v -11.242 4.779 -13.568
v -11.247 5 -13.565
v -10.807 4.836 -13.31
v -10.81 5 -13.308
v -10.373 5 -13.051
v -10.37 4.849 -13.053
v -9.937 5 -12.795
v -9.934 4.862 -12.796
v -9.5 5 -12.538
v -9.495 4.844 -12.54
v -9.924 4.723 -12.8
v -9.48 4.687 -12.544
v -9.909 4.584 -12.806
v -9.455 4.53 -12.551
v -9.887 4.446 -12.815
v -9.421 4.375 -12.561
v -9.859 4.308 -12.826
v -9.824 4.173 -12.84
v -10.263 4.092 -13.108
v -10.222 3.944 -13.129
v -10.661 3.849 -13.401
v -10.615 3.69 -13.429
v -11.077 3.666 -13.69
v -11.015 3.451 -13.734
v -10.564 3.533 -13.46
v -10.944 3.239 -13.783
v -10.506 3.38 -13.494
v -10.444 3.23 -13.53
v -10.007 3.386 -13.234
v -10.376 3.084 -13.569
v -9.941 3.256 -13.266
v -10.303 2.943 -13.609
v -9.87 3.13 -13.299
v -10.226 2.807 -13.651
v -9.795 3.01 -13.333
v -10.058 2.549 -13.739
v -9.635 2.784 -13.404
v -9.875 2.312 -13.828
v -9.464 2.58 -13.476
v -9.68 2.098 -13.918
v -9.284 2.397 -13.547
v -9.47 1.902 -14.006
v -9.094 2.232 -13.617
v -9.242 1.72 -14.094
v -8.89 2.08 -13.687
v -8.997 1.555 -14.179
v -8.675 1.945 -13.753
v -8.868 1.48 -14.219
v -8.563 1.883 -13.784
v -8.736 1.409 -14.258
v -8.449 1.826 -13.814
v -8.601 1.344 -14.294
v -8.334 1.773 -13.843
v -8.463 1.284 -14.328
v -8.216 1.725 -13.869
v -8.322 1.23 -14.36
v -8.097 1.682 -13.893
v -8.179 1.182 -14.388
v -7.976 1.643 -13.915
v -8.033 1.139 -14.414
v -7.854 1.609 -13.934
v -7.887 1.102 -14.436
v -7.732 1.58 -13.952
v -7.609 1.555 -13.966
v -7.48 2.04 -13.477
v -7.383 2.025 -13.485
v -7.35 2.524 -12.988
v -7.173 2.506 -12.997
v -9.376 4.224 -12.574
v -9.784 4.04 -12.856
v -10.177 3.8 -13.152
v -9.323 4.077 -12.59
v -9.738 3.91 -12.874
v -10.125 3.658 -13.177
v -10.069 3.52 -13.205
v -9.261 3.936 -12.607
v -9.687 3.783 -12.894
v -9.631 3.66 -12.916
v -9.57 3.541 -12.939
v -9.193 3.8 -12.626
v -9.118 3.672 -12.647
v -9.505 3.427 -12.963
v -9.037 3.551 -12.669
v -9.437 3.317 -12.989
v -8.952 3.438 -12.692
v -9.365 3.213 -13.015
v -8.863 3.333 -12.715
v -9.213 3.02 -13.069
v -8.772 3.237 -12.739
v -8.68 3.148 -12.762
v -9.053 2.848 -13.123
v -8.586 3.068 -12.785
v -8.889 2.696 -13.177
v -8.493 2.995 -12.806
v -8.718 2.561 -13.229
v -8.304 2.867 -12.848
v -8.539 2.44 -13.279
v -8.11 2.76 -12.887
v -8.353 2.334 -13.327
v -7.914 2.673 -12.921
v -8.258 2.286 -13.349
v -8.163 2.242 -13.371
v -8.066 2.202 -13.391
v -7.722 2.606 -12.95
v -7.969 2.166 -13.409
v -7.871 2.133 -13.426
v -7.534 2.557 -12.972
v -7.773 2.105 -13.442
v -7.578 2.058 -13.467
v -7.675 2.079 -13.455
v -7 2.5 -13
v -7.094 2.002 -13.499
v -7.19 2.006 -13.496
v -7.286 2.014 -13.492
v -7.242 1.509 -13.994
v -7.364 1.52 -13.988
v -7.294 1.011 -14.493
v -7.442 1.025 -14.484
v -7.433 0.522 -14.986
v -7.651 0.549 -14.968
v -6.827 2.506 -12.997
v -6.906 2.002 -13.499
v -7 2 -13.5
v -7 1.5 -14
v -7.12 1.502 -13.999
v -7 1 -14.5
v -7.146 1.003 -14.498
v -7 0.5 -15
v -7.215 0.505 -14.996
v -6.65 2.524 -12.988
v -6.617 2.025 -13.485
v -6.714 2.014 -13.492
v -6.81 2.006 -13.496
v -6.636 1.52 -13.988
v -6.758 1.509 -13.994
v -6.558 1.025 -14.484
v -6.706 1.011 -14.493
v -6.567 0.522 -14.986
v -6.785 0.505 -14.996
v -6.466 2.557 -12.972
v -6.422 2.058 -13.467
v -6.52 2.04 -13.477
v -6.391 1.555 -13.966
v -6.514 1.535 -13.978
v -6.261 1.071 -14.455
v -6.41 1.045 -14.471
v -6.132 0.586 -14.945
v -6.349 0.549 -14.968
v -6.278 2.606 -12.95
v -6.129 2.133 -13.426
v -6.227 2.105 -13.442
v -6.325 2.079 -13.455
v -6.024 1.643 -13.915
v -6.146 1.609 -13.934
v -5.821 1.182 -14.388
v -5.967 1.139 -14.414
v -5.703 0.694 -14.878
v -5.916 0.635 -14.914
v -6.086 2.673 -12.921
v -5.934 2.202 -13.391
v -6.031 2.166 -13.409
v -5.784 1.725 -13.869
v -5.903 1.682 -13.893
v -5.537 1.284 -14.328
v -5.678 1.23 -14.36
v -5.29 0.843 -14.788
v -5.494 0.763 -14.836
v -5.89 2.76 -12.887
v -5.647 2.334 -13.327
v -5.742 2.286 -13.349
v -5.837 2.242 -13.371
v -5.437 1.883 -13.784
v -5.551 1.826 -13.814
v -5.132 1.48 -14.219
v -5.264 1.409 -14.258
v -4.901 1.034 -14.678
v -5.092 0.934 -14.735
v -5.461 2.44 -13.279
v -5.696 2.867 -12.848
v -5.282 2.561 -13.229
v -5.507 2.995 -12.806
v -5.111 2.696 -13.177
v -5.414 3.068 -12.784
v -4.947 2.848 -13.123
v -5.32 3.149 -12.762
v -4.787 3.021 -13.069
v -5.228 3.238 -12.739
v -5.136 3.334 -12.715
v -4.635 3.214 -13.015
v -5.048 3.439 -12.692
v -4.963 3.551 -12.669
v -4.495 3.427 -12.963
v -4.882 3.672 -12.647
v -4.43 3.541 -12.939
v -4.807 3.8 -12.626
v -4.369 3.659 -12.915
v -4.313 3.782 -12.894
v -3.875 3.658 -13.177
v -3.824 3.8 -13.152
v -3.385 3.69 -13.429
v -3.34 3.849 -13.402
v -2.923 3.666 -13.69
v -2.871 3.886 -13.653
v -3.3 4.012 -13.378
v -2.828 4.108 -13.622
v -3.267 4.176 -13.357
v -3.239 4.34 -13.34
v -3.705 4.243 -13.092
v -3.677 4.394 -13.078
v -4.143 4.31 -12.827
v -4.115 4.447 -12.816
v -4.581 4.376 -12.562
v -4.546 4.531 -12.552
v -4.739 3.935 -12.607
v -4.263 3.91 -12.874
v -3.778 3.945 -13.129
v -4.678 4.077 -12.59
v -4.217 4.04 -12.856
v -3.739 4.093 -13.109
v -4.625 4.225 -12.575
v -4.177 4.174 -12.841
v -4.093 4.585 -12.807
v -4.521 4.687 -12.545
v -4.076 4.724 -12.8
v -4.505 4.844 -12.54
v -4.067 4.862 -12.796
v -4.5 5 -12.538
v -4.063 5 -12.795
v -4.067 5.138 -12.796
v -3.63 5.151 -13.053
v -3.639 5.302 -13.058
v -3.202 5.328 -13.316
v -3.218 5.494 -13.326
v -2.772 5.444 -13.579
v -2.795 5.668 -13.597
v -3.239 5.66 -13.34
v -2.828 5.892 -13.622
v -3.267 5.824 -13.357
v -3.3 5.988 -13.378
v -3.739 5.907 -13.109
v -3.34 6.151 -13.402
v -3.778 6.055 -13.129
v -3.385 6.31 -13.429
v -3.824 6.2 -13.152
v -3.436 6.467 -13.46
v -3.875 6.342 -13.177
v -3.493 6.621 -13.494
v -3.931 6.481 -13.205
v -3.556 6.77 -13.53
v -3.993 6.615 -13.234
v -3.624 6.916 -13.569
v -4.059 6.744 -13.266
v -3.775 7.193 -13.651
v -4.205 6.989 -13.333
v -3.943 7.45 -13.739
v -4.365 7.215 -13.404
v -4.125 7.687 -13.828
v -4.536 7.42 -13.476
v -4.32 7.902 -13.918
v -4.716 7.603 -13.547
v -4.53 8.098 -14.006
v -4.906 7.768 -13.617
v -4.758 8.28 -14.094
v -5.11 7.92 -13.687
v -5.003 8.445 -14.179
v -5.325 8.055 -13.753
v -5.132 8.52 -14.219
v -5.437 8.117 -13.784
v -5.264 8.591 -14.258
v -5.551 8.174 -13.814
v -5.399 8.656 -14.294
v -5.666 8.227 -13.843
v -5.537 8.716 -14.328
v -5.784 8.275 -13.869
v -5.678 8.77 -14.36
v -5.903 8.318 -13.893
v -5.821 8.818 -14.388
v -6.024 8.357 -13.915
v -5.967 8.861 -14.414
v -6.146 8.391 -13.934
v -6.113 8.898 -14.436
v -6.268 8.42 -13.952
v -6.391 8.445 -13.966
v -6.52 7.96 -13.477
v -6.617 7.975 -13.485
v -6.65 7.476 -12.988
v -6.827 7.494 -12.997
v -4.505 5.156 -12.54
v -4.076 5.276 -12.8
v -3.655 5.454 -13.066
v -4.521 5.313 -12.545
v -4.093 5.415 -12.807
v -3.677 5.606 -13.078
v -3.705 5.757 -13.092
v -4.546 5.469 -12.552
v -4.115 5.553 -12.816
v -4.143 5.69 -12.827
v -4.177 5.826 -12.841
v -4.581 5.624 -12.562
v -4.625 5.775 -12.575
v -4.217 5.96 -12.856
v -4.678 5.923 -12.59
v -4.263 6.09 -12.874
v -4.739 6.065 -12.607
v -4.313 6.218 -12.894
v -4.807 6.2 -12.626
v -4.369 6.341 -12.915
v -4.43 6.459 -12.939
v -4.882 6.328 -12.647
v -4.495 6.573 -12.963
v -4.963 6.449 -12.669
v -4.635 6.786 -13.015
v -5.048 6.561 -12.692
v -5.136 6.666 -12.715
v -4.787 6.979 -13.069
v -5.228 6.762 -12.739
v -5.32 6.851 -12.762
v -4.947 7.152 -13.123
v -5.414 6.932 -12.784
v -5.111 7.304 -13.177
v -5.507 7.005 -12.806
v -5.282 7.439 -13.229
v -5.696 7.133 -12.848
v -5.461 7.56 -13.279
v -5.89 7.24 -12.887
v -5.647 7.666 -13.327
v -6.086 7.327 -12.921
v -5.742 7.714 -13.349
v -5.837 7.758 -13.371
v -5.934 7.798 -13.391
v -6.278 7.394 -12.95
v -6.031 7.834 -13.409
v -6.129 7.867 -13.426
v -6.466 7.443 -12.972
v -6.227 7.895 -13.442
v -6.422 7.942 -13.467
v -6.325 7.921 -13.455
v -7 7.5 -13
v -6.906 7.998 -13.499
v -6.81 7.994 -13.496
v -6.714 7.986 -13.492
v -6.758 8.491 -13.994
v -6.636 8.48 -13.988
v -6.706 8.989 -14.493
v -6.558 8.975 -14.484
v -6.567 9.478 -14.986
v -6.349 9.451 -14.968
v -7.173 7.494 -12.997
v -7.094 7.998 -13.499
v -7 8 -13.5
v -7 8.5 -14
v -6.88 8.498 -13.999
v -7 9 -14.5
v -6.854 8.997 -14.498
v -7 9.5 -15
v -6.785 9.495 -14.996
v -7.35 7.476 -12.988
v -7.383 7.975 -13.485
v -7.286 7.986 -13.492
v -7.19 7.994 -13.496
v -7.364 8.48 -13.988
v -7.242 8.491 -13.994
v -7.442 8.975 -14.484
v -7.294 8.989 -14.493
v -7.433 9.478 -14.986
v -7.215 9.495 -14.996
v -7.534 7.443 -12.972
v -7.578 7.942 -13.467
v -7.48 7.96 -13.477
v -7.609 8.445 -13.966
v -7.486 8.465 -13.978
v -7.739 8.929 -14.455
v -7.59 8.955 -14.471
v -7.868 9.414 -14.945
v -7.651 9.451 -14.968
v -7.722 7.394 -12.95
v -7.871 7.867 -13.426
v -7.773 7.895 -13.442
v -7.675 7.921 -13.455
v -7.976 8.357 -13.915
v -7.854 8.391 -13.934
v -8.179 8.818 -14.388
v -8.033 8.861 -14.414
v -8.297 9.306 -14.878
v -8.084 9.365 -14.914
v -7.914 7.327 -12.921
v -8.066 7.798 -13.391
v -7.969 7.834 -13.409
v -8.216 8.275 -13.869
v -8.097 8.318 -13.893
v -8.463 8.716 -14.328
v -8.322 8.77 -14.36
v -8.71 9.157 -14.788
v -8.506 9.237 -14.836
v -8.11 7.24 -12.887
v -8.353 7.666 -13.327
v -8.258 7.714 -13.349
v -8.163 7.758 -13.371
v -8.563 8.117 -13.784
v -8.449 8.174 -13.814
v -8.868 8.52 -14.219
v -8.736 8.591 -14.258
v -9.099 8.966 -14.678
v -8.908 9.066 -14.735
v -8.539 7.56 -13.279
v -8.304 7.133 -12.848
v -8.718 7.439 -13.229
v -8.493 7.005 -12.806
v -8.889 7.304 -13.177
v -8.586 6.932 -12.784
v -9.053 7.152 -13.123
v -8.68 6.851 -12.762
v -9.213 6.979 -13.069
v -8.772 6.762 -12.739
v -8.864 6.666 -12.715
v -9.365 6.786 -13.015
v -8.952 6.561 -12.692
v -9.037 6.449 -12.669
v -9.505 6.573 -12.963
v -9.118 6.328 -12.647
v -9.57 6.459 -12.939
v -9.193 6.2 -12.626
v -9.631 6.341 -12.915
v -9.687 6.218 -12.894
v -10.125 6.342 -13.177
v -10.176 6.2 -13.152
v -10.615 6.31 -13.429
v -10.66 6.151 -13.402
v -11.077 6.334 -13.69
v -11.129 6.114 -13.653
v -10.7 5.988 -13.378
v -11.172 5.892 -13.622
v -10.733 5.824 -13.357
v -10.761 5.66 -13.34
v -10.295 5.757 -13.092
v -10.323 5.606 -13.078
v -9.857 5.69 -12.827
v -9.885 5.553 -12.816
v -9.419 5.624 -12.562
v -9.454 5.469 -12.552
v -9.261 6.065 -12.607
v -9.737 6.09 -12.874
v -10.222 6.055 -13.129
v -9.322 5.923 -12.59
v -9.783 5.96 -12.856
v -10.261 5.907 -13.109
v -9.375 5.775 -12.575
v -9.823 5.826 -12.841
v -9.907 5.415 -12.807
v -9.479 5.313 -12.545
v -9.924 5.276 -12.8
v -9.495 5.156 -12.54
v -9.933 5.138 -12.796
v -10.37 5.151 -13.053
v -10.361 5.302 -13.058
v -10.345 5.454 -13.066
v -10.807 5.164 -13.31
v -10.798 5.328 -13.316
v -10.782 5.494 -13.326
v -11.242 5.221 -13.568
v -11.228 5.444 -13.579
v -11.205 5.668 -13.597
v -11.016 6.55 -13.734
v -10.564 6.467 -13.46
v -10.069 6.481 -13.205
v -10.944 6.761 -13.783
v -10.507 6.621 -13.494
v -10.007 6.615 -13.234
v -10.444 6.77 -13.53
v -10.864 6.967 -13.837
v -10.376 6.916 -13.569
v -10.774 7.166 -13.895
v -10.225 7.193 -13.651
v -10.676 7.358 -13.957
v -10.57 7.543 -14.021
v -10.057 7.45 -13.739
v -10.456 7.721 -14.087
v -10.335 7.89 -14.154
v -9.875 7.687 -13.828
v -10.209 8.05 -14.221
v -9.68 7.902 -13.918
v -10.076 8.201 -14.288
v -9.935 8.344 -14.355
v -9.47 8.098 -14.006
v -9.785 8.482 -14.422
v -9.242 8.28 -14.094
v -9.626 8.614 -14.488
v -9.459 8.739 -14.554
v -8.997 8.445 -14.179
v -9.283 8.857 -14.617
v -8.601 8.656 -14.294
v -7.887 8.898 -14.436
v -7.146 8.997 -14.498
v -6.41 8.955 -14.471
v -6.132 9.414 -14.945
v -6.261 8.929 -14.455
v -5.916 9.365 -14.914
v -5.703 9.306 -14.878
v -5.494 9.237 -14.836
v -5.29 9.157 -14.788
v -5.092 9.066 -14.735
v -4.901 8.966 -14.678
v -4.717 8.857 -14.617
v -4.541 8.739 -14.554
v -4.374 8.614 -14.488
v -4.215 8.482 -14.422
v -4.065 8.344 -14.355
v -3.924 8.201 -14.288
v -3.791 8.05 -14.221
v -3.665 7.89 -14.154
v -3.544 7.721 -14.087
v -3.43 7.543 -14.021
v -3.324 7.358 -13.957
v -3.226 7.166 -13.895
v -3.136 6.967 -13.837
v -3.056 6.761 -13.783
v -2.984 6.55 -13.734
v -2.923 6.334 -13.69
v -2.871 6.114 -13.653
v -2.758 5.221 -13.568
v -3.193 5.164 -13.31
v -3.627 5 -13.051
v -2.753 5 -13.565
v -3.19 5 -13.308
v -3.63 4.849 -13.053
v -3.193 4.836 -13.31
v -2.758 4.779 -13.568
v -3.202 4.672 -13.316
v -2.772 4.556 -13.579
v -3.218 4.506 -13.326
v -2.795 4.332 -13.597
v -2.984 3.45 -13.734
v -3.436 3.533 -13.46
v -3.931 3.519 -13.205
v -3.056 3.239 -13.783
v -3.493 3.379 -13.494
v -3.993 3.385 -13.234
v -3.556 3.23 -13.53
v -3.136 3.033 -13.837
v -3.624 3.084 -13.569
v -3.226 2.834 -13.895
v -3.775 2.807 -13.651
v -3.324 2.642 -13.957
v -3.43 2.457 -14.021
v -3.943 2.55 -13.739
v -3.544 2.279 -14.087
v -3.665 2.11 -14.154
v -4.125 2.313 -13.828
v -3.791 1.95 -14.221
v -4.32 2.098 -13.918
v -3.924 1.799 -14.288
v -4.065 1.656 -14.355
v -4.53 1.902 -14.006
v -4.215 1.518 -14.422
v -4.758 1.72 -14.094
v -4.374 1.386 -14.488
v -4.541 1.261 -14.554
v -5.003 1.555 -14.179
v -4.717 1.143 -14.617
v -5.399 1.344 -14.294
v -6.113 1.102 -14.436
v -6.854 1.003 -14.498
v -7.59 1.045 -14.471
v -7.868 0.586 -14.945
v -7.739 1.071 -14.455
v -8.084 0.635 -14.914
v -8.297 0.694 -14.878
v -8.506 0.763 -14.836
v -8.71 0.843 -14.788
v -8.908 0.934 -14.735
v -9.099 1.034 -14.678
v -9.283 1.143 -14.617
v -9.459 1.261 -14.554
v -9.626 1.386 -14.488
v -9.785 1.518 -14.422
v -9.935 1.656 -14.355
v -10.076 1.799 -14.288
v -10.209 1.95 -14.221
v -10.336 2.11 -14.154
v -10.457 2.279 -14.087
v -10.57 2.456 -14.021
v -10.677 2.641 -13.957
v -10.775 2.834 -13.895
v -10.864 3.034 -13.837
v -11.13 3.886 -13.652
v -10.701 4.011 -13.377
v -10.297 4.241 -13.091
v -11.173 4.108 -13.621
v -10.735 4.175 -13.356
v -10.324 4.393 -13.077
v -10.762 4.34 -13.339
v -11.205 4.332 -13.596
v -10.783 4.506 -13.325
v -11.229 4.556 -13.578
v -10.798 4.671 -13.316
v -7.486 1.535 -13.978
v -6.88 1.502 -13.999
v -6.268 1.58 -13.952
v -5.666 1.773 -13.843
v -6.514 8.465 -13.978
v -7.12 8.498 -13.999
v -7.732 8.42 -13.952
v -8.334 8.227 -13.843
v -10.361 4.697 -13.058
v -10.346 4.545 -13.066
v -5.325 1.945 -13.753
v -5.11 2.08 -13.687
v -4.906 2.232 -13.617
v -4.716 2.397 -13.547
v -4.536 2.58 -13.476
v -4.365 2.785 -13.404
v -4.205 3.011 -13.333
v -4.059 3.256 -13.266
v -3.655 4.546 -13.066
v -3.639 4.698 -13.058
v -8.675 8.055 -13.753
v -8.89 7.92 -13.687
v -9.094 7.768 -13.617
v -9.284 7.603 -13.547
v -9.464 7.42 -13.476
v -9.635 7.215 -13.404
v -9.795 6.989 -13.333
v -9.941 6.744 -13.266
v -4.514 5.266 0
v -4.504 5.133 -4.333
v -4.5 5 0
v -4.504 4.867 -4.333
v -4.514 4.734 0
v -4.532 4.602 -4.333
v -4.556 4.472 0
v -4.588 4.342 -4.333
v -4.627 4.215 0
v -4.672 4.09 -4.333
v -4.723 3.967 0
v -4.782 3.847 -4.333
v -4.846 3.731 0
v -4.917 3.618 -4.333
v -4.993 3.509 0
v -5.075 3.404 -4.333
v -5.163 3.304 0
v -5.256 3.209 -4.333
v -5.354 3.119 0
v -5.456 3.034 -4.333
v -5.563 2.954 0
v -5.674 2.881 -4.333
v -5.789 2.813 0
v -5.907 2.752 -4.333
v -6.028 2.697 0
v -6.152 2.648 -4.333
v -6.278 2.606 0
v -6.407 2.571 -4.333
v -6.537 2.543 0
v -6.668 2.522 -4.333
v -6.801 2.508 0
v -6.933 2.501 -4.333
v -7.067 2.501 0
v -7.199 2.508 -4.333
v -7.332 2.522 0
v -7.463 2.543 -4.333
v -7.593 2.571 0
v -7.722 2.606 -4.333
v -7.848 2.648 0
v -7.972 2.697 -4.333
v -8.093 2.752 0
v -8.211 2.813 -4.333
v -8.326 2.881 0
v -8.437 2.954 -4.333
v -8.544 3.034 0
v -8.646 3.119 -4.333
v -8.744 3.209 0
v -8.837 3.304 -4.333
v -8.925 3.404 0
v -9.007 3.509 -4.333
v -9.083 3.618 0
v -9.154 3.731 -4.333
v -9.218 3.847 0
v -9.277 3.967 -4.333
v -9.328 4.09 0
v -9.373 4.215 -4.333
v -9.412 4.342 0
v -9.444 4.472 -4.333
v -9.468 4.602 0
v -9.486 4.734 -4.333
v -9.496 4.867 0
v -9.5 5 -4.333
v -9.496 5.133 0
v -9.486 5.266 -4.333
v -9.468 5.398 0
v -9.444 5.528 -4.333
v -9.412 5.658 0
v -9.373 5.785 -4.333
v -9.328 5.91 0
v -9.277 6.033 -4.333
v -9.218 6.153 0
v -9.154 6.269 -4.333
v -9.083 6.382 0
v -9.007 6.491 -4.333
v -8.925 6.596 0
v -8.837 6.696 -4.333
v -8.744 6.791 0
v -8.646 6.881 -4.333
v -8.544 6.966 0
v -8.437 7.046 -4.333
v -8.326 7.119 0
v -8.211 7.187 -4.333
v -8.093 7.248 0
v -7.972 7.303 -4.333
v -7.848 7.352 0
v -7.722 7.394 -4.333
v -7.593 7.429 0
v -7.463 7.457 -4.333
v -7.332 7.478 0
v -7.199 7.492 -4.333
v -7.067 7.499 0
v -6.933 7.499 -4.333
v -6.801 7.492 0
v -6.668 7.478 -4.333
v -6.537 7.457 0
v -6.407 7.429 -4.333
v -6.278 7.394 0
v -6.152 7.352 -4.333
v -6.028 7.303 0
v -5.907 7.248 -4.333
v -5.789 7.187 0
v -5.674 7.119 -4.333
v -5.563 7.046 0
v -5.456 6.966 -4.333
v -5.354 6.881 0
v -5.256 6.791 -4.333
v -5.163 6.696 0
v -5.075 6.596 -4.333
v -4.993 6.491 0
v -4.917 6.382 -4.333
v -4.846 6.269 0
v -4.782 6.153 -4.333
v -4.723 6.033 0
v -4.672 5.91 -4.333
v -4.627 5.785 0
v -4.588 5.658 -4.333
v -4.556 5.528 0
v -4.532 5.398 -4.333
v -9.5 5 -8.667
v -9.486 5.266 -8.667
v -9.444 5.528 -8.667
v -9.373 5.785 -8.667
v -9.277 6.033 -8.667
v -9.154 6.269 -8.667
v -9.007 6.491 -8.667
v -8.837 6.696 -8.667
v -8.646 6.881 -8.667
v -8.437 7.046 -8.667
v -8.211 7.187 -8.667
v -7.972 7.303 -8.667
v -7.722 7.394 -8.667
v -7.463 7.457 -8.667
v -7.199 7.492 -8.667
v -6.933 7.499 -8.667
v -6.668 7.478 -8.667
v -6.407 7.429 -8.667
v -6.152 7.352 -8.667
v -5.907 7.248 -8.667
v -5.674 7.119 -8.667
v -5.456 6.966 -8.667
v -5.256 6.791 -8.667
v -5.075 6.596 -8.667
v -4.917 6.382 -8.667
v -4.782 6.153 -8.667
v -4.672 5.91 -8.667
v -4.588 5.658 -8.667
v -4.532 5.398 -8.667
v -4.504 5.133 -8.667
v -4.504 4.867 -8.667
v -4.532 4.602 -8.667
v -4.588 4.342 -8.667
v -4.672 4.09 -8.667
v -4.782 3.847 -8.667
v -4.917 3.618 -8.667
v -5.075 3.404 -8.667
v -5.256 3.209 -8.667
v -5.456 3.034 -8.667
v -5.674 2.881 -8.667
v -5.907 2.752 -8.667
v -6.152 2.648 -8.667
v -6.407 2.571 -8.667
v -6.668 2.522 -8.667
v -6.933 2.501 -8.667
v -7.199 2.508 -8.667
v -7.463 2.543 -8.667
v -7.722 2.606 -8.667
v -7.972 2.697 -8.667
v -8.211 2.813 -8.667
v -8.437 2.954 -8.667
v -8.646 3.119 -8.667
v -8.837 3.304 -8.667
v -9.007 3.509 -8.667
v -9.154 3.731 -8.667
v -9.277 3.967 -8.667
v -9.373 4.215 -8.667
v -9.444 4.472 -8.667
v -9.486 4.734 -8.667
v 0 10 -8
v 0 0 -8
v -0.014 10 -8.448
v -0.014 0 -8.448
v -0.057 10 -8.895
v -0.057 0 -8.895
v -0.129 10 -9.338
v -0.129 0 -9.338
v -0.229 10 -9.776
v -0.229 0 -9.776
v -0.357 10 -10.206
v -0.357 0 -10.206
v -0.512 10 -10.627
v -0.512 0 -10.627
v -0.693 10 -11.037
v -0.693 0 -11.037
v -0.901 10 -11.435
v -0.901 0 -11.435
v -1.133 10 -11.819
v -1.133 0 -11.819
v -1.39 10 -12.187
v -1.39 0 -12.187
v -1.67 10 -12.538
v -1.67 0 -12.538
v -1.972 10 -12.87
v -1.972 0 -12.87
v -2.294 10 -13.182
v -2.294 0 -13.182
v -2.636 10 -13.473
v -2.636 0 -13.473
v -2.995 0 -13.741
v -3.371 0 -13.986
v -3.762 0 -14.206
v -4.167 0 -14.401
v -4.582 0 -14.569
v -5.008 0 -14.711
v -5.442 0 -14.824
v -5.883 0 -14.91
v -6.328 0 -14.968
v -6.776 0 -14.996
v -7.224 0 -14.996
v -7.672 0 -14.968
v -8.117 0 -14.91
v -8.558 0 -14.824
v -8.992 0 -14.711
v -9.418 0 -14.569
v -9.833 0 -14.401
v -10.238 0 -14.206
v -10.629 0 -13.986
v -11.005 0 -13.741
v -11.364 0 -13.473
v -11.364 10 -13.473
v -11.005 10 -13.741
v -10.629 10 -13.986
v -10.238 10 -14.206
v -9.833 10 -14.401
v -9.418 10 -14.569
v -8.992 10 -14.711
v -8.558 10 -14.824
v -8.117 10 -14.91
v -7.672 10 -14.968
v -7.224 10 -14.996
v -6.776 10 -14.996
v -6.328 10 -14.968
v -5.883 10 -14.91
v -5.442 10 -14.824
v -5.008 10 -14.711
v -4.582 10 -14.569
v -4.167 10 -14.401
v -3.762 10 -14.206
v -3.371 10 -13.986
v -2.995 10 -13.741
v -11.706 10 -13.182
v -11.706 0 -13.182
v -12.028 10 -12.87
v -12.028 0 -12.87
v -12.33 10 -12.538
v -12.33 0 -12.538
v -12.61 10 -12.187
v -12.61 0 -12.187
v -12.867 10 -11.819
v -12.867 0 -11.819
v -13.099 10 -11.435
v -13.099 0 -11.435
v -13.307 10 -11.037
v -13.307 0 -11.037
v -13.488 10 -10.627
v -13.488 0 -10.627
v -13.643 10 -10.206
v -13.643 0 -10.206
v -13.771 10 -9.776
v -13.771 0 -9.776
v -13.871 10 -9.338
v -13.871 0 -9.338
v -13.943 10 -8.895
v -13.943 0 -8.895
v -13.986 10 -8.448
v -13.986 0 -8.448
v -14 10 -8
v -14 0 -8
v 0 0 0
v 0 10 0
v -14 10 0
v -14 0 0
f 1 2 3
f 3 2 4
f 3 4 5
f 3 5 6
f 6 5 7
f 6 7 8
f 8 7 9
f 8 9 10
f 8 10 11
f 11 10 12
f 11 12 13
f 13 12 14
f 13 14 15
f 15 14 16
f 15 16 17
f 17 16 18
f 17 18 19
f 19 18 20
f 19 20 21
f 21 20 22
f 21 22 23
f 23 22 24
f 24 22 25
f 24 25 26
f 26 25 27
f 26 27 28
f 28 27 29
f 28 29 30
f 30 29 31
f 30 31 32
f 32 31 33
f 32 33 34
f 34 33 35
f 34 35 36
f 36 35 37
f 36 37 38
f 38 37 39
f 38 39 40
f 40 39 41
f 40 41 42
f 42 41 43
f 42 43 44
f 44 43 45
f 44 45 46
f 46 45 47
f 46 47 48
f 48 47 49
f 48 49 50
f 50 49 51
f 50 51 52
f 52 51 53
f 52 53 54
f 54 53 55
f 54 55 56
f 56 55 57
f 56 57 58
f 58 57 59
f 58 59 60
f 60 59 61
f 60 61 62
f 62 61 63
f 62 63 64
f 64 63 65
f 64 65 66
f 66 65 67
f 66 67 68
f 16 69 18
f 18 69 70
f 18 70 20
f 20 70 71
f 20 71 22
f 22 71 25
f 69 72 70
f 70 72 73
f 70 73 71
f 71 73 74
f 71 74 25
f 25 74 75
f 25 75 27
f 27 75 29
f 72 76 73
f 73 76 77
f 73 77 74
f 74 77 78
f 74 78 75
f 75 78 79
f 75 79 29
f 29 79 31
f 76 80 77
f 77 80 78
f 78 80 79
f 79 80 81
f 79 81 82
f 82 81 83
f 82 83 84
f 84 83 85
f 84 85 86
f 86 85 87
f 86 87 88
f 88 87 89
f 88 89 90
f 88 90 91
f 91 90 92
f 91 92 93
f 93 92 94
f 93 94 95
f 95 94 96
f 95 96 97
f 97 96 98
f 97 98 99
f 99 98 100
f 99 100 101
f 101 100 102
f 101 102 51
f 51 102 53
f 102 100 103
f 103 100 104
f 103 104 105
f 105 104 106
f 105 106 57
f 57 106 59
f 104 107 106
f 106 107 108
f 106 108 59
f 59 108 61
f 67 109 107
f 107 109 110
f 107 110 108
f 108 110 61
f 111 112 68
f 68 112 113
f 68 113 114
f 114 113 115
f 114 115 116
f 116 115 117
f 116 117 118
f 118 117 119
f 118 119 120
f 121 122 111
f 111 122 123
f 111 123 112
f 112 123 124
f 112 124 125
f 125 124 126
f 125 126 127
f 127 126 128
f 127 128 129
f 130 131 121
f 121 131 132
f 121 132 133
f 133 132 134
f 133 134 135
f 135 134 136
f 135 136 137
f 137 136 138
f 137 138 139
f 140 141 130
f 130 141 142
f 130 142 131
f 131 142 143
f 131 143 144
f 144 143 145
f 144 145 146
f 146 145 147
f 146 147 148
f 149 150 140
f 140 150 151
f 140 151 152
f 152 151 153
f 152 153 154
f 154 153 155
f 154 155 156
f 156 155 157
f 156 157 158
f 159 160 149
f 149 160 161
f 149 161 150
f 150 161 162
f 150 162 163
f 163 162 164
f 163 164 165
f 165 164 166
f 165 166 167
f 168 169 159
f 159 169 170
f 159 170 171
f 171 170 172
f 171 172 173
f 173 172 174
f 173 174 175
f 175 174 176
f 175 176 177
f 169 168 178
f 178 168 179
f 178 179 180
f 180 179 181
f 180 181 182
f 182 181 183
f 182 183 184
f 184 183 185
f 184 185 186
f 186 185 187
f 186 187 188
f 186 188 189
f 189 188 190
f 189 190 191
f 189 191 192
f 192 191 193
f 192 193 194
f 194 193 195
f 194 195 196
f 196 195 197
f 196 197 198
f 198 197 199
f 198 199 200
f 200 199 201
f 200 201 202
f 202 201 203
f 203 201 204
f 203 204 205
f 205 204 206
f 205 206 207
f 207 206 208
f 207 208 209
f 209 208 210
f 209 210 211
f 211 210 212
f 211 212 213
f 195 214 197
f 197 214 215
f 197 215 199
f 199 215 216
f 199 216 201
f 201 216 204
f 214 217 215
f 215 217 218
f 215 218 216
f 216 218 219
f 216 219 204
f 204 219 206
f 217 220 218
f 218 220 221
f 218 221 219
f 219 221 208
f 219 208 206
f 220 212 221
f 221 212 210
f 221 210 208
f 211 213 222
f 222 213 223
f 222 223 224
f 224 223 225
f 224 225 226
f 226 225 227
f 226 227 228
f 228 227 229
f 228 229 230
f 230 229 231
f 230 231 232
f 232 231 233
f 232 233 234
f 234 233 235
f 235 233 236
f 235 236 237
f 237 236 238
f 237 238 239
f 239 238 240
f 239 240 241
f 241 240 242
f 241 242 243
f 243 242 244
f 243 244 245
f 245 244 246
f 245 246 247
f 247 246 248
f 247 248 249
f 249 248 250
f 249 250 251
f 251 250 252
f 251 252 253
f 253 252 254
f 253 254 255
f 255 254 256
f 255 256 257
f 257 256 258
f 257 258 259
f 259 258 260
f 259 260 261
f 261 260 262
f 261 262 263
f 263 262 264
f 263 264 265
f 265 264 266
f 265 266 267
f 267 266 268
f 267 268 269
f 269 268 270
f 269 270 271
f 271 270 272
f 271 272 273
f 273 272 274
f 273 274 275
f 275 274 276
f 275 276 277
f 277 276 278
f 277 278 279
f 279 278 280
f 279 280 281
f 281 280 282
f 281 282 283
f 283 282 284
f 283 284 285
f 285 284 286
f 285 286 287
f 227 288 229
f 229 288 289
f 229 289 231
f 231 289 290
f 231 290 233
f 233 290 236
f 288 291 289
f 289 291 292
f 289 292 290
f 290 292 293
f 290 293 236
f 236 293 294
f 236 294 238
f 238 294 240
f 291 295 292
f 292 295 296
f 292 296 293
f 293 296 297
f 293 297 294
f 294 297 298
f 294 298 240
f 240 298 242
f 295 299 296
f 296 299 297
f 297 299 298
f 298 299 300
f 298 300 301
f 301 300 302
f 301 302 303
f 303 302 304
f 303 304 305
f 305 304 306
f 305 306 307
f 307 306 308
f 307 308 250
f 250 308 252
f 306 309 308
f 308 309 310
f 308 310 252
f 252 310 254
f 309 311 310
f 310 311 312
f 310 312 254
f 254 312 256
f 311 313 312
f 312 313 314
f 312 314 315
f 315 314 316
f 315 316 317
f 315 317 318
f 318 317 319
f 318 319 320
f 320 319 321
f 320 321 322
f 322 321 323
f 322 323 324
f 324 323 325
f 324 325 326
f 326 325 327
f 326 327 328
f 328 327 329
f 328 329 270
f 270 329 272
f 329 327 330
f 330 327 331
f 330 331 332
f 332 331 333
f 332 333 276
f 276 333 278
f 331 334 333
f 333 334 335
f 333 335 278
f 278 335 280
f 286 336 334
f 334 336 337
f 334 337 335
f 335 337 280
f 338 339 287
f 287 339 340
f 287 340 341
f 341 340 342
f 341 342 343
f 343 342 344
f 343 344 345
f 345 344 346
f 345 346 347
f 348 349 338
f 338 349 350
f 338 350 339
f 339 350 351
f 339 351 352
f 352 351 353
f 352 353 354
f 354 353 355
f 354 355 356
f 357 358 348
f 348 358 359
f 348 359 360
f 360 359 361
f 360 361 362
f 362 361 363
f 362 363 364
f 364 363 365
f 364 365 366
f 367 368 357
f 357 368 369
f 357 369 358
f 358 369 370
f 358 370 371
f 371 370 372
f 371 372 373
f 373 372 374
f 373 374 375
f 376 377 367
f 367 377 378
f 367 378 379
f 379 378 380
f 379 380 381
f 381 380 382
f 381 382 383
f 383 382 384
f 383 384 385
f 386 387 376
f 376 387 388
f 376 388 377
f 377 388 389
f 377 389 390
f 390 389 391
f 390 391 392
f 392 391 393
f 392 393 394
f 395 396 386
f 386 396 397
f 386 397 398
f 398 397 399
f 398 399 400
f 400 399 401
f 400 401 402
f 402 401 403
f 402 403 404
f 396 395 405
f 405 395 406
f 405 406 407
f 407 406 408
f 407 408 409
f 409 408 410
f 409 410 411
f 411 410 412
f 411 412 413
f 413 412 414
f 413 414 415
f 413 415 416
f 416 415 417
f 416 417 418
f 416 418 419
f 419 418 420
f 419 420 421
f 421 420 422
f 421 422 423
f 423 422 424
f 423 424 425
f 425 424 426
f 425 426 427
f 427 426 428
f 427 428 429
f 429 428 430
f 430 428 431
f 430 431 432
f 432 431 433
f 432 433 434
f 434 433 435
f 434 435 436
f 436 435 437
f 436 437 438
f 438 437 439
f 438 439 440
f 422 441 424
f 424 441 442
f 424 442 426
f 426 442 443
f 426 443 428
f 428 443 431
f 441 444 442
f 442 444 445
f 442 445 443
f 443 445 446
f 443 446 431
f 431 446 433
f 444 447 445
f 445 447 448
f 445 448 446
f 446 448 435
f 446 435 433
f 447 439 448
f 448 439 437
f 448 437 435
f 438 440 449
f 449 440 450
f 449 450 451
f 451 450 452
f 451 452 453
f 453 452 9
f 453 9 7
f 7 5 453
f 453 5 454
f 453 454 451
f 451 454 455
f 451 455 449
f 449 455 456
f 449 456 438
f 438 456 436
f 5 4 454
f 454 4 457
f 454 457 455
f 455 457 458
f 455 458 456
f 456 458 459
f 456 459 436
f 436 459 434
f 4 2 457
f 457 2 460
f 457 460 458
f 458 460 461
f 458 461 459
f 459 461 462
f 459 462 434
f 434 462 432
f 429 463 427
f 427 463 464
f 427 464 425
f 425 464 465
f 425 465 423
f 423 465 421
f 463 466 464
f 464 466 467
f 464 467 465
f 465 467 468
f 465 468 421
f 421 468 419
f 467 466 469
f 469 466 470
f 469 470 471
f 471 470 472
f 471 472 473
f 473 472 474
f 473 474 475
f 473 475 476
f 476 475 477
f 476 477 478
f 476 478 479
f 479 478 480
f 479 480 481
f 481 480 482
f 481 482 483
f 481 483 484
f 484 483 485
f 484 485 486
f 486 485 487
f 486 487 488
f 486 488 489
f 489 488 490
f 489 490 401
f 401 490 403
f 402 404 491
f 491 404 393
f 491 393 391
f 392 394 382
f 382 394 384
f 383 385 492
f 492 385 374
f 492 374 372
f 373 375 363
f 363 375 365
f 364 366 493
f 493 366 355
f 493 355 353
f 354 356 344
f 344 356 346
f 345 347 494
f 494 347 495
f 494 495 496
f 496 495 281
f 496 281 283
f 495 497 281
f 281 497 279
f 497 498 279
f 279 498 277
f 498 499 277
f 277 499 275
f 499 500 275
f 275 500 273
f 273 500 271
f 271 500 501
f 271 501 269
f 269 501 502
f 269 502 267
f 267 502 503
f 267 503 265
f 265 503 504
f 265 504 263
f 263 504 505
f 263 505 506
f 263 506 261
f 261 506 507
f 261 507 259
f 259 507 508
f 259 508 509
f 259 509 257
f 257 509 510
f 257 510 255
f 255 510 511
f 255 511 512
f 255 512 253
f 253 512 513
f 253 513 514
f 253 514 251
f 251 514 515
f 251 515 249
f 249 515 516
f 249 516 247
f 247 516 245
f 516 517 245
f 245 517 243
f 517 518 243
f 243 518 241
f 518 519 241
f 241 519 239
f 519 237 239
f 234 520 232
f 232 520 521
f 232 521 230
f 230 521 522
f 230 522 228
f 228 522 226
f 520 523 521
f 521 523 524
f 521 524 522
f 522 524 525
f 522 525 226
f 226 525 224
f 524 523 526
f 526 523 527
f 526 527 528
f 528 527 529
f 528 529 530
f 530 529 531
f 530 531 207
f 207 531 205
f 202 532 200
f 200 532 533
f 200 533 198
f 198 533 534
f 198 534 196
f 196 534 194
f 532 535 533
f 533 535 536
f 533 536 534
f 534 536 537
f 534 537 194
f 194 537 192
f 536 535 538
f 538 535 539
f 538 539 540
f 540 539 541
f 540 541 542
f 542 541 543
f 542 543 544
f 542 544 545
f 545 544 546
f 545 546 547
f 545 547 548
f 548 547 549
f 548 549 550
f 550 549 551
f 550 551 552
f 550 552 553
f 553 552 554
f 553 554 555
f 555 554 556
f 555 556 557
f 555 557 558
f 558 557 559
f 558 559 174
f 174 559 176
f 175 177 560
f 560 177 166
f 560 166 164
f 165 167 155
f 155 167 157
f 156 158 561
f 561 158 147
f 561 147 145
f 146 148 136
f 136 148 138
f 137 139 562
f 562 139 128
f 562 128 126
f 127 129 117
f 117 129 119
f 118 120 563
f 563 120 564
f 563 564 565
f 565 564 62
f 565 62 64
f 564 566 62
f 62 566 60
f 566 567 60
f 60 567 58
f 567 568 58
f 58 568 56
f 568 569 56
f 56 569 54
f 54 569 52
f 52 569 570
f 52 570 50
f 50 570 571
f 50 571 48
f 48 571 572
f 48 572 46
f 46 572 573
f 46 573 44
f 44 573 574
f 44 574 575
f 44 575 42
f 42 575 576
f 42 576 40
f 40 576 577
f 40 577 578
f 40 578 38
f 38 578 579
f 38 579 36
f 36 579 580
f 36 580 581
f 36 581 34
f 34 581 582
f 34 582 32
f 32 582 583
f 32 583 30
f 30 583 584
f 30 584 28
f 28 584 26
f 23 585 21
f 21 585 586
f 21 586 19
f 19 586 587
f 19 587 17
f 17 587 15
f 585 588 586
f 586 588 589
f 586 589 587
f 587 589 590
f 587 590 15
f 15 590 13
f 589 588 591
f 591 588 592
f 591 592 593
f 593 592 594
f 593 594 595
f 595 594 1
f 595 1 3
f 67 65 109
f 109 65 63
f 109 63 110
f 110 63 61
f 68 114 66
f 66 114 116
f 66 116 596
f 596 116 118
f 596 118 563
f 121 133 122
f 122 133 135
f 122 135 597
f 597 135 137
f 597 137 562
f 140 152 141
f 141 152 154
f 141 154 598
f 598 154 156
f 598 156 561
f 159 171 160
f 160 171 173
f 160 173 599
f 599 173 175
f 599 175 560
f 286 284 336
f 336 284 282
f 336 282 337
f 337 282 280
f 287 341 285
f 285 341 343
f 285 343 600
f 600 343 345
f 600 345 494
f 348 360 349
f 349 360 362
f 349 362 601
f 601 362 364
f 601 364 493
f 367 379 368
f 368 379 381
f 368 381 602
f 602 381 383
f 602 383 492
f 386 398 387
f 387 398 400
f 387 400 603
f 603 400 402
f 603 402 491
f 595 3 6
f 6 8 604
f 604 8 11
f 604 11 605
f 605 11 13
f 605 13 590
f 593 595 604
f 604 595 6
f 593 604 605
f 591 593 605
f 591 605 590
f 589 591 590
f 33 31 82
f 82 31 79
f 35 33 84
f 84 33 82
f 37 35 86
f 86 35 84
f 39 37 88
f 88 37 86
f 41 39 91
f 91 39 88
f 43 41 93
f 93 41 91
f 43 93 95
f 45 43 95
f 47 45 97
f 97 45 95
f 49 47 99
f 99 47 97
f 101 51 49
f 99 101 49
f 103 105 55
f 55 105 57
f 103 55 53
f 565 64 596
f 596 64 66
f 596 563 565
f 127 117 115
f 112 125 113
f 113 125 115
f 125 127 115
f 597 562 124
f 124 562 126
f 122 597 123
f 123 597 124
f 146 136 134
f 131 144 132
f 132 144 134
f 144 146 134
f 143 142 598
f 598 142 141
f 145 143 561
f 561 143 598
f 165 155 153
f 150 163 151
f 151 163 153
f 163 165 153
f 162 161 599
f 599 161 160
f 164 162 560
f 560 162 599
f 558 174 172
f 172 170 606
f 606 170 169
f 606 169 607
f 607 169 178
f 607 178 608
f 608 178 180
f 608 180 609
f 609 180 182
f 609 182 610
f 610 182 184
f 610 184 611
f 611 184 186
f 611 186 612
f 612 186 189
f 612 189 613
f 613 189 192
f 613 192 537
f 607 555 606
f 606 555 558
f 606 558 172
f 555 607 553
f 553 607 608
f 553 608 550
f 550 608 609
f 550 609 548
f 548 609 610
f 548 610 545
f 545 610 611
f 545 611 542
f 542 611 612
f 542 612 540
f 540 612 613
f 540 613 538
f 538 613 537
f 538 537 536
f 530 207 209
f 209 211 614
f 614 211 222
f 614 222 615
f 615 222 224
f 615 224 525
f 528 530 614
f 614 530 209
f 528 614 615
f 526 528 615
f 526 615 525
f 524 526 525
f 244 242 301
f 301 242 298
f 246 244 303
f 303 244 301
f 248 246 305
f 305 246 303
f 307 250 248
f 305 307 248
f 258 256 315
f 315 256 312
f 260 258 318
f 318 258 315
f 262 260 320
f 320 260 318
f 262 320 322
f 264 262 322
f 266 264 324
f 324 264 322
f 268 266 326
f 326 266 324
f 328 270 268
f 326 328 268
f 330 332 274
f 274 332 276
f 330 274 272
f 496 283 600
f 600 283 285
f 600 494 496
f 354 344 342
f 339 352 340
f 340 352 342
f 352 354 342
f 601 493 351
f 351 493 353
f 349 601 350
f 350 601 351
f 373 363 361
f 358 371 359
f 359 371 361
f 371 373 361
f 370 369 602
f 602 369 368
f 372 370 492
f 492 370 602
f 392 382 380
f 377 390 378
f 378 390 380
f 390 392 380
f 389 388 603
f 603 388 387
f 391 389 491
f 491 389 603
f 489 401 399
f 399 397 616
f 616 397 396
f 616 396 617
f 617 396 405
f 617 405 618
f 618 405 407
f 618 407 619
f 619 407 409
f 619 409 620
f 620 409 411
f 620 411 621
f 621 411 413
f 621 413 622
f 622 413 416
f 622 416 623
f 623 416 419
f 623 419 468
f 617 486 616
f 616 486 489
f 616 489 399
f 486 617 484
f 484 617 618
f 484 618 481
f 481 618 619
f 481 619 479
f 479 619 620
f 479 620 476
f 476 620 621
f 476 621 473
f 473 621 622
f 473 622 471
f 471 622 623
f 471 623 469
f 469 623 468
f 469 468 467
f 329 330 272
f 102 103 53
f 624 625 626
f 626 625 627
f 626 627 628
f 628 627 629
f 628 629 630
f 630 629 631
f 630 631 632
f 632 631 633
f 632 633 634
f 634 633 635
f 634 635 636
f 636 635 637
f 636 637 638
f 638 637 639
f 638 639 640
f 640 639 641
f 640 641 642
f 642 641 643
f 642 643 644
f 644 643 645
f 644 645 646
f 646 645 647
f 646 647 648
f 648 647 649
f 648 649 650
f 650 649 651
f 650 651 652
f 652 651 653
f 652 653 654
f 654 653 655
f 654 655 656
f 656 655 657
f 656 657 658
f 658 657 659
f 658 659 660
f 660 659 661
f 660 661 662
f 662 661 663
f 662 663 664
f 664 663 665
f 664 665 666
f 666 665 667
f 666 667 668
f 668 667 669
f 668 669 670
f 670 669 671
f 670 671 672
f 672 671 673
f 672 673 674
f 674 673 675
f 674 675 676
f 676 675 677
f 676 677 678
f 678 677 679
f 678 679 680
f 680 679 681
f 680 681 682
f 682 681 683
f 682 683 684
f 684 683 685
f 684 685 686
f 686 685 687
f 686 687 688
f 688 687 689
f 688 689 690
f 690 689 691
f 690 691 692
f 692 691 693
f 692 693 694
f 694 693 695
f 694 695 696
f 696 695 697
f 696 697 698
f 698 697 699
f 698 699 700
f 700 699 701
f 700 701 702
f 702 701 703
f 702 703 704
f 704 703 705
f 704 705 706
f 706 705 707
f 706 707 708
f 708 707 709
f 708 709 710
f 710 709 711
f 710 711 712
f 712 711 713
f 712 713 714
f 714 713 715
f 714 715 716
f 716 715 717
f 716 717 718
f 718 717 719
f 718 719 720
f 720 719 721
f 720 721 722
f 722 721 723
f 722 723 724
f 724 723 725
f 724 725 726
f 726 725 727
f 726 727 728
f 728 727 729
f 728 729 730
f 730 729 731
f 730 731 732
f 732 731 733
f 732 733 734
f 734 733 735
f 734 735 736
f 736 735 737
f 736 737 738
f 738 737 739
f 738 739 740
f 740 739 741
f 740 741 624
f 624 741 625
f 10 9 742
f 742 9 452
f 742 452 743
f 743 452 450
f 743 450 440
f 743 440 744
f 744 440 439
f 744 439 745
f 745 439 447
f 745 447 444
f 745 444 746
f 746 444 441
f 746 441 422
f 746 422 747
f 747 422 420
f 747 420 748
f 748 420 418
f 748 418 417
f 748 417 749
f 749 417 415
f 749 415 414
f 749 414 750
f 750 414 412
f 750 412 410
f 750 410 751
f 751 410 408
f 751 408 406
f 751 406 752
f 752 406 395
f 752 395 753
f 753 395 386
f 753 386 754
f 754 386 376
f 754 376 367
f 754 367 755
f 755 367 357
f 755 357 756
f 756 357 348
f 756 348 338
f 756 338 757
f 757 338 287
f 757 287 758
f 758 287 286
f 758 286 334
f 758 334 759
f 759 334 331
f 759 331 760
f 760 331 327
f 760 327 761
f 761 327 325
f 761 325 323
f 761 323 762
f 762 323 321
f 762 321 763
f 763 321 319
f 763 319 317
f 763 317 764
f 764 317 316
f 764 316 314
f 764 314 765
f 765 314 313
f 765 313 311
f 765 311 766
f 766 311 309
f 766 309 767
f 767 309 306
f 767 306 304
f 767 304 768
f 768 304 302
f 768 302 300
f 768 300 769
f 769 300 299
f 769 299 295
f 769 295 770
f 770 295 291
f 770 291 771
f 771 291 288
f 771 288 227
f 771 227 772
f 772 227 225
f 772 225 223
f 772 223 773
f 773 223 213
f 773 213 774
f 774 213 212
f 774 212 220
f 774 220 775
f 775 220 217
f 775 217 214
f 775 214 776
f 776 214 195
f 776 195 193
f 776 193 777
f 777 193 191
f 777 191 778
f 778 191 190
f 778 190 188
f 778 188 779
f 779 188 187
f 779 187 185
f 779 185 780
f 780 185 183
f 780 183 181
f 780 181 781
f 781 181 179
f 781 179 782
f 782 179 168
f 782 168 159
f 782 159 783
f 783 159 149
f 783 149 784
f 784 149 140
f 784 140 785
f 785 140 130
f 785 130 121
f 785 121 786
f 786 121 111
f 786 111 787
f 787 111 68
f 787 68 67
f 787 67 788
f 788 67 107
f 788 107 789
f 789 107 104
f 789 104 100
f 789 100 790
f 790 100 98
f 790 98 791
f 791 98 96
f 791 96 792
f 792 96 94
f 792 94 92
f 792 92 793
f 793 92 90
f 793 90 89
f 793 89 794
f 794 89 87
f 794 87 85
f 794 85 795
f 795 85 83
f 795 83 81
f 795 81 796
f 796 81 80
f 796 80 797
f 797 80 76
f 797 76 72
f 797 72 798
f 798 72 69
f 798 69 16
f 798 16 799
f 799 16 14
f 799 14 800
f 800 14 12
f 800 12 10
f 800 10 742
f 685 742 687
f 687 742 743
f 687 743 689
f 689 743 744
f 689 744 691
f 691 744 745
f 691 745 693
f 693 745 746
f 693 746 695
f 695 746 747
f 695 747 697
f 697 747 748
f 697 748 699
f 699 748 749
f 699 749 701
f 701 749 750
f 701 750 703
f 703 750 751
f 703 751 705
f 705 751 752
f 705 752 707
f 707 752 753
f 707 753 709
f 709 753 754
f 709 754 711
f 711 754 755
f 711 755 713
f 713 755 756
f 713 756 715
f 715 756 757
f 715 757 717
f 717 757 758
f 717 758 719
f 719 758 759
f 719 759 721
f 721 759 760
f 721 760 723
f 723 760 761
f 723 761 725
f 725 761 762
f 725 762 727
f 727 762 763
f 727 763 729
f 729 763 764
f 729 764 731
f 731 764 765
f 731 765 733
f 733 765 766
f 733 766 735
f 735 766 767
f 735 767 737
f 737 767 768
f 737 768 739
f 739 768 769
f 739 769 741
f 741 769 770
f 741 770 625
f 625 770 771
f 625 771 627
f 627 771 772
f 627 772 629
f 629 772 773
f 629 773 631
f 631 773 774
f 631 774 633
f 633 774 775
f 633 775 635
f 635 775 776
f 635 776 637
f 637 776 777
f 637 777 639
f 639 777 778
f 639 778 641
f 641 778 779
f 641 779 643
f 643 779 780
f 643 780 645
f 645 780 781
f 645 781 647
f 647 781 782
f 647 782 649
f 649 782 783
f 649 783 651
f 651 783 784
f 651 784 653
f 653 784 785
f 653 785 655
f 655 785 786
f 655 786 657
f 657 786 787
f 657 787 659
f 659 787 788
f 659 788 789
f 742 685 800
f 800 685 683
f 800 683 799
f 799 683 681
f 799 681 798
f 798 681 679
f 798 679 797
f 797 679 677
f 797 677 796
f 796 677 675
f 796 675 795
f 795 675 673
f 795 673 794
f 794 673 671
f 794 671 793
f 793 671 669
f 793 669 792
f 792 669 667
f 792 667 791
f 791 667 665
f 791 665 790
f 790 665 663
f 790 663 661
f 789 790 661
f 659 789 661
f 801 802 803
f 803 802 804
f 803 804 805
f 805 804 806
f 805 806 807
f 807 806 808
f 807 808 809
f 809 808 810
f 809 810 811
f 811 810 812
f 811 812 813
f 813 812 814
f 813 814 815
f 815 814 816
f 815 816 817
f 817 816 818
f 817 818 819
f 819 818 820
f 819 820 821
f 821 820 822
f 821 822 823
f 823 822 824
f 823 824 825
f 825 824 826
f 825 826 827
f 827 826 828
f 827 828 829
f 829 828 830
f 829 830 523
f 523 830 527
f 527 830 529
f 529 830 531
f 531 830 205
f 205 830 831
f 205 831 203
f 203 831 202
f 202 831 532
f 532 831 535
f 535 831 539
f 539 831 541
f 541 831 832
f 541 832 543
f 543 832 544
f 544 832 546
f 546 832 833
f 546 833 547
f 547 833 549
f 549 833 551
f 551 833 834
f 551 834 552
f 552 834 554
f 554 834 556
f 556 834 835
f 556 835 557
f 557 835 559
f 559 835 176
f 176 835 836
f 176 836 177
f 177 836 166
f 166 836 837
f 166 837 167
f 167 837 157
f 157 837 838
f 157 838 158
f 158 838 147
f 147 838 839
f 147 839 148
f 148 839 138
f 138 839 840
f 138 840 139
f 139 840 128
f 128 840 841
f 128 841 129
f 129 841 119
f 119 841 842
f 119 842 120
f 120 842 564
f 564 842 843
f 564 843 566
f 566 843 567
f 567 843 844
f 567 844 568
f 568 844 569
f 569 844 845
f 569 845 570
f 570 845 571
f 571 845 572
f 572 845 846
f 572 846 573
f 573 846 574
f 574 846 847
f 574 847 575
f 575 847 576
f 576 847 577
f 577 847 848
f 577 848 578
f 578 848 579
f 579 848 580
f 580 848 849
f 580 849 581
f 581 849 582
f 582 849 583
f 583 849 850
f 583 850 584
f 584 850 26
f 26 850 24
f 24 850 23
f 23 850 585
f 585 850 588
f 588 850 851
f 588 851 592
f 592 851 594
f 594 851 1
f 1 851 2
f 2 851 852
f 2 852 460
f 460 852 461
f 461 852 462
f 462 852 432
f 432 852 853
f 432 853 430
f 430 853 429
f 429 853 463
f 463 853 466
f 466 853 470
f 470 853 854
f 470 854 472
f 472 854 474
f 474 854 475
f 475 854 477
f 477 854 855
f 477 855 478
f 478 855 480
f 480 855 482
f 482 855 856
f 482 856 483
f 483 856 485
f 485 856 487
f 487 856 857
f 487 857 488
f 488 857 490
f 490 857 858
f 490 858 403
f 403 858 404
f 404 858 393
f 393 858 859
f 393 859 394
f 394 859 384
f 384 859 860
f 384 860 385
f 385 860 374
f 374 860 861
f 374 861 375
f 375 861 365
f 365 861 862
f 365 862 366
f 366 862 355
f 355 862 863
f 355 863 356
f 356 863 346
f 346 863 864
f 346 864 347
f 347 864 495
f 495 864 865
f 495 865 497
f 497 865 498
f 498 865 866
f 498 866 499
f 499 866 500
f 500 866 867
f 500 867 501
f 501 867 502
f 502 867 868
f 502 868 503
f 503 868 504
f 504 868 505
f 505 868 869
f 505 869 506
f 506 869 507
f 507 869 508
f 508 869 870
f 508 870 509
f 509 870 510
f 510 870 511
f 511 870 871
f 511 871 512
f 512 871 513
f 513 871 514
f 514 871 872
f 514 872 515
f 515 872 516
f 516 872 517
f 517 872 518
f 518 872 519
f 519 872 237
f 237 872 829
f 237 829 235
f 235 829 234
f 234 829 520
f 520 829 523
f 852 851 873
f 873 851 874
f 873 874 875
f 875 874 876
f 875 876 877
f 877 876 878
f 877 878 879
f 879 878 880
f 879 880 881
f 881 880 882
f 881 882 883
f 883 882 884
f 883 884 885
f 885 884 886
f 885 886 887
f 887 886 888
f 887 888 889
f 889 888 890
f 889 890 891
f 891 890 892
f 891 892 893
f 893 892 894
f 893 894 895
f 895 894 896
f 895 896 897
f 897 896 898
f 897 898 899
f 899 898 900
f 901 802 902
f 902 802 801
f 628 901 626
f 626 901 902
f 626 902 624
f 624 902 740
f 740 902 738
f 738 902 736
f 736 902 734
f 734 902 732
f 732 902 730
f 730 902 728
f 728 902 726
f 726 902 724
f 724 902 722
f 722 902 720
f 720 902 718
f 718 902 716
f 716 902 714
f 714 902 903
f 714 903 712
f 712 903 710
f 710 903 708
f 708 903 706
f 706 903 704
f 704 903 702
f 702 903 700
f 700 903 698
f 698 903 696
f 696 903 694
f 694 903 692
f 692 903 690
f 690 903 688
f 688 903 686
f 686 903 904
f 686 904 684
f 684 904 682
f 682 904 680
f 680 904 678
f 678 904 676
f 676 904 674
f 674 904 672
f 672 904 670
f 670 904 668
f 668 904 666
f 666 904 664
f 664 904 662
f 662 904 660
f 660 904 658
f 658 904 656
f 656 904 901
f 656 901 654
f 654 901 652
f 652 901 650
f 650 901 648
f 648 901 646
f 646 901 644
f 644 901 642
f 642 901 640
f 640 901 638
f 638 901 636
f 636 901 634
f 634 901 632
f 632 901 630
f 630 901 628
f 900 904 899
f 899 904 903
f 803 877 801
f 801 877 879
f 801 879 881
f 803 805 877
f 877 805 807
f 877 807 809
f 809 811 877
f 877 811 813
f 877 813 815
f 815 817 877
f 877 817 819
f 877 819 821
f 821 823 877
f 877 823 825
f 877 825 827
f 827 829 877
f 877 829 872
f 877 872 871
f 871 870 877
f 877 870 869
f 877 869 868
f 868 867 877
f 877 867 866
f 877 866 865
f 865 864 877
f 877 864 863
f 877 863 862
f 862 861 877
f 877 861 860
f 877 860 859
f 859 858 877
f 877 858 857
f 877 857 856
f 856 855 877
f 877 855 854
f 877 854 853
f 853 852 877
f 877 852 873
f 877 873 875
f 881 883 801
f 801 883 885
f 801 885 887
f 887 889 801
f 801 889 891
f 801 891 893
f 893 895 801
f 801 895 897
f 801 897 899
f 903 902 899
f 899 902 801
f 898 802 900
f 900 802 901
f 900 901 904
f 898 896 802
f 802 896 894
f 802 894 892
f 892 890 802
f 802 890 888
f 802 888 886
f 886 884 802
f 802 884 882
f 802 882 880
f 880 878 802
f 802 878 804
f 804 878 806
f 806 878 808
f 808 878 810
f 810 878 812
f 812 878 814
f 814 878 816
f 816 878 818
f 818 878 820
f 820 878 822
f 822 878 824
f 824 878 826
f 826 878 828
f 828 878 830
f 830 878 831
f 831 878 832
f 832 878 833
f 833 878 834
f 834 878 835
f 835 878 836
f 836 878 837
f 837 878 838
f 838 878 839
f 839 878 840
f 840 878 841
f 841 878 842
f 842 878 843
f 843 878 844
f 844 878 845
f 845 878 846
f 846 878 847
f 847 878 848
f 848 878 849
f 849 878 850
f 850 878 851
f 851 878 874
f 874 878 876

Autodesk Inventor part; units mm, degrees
ref_plane "YZ Plane" through (0, 0, 0) normal (1, 0, 0) x (0, 1, 0)
ref_plane "XZ Plane" through (0, 0, 0) normal (0, 1, 0) x (-1, 0, 0)
ref_plane "XY Plane" through (0, 0, 0) normal (0, 0, 1) x (1, 0, 0)
sketch "Sketch1" plane through (0, 0, 0) normal (0, 1, 0) x (-1, 0, 0)
  line L0 (0, -8) -> (0, 0)
  line L1 (0, 0) -> (14, 0)
  line L2 (14, 0) -> (14, -8)
  arc A0 (0, -8) -> (14, -8) centre (7, -8) ccw
  dimension "d0" = 14
  dimension "d1" = 7
  dimension "d2" = 8
extrude "Extrusion1" add sketch "Sketch1" along normal blind 10
sketch "Sketch2" plane through (-14, 0, 0) normal (0, 0, 1) x (1, 0, 0)
  circle A0 centre (7, 5) radius 2.5
  line L0 (0, 0) -> (14, 0) projected
  line L1 (0, 0) -> (0, 10) projected
  dimension "d5" = 5
  dimension "d6" = 5
  dimension "d7" = 7
extrude "Extrusion2" cut sketch "Sketch2" against normal through all
chamfer "Chamfer1" distance 2 angle 45 1 edges at (-9.5, 5.0035, -14.5383)
properties part number "SUPPORT_POULIE"
